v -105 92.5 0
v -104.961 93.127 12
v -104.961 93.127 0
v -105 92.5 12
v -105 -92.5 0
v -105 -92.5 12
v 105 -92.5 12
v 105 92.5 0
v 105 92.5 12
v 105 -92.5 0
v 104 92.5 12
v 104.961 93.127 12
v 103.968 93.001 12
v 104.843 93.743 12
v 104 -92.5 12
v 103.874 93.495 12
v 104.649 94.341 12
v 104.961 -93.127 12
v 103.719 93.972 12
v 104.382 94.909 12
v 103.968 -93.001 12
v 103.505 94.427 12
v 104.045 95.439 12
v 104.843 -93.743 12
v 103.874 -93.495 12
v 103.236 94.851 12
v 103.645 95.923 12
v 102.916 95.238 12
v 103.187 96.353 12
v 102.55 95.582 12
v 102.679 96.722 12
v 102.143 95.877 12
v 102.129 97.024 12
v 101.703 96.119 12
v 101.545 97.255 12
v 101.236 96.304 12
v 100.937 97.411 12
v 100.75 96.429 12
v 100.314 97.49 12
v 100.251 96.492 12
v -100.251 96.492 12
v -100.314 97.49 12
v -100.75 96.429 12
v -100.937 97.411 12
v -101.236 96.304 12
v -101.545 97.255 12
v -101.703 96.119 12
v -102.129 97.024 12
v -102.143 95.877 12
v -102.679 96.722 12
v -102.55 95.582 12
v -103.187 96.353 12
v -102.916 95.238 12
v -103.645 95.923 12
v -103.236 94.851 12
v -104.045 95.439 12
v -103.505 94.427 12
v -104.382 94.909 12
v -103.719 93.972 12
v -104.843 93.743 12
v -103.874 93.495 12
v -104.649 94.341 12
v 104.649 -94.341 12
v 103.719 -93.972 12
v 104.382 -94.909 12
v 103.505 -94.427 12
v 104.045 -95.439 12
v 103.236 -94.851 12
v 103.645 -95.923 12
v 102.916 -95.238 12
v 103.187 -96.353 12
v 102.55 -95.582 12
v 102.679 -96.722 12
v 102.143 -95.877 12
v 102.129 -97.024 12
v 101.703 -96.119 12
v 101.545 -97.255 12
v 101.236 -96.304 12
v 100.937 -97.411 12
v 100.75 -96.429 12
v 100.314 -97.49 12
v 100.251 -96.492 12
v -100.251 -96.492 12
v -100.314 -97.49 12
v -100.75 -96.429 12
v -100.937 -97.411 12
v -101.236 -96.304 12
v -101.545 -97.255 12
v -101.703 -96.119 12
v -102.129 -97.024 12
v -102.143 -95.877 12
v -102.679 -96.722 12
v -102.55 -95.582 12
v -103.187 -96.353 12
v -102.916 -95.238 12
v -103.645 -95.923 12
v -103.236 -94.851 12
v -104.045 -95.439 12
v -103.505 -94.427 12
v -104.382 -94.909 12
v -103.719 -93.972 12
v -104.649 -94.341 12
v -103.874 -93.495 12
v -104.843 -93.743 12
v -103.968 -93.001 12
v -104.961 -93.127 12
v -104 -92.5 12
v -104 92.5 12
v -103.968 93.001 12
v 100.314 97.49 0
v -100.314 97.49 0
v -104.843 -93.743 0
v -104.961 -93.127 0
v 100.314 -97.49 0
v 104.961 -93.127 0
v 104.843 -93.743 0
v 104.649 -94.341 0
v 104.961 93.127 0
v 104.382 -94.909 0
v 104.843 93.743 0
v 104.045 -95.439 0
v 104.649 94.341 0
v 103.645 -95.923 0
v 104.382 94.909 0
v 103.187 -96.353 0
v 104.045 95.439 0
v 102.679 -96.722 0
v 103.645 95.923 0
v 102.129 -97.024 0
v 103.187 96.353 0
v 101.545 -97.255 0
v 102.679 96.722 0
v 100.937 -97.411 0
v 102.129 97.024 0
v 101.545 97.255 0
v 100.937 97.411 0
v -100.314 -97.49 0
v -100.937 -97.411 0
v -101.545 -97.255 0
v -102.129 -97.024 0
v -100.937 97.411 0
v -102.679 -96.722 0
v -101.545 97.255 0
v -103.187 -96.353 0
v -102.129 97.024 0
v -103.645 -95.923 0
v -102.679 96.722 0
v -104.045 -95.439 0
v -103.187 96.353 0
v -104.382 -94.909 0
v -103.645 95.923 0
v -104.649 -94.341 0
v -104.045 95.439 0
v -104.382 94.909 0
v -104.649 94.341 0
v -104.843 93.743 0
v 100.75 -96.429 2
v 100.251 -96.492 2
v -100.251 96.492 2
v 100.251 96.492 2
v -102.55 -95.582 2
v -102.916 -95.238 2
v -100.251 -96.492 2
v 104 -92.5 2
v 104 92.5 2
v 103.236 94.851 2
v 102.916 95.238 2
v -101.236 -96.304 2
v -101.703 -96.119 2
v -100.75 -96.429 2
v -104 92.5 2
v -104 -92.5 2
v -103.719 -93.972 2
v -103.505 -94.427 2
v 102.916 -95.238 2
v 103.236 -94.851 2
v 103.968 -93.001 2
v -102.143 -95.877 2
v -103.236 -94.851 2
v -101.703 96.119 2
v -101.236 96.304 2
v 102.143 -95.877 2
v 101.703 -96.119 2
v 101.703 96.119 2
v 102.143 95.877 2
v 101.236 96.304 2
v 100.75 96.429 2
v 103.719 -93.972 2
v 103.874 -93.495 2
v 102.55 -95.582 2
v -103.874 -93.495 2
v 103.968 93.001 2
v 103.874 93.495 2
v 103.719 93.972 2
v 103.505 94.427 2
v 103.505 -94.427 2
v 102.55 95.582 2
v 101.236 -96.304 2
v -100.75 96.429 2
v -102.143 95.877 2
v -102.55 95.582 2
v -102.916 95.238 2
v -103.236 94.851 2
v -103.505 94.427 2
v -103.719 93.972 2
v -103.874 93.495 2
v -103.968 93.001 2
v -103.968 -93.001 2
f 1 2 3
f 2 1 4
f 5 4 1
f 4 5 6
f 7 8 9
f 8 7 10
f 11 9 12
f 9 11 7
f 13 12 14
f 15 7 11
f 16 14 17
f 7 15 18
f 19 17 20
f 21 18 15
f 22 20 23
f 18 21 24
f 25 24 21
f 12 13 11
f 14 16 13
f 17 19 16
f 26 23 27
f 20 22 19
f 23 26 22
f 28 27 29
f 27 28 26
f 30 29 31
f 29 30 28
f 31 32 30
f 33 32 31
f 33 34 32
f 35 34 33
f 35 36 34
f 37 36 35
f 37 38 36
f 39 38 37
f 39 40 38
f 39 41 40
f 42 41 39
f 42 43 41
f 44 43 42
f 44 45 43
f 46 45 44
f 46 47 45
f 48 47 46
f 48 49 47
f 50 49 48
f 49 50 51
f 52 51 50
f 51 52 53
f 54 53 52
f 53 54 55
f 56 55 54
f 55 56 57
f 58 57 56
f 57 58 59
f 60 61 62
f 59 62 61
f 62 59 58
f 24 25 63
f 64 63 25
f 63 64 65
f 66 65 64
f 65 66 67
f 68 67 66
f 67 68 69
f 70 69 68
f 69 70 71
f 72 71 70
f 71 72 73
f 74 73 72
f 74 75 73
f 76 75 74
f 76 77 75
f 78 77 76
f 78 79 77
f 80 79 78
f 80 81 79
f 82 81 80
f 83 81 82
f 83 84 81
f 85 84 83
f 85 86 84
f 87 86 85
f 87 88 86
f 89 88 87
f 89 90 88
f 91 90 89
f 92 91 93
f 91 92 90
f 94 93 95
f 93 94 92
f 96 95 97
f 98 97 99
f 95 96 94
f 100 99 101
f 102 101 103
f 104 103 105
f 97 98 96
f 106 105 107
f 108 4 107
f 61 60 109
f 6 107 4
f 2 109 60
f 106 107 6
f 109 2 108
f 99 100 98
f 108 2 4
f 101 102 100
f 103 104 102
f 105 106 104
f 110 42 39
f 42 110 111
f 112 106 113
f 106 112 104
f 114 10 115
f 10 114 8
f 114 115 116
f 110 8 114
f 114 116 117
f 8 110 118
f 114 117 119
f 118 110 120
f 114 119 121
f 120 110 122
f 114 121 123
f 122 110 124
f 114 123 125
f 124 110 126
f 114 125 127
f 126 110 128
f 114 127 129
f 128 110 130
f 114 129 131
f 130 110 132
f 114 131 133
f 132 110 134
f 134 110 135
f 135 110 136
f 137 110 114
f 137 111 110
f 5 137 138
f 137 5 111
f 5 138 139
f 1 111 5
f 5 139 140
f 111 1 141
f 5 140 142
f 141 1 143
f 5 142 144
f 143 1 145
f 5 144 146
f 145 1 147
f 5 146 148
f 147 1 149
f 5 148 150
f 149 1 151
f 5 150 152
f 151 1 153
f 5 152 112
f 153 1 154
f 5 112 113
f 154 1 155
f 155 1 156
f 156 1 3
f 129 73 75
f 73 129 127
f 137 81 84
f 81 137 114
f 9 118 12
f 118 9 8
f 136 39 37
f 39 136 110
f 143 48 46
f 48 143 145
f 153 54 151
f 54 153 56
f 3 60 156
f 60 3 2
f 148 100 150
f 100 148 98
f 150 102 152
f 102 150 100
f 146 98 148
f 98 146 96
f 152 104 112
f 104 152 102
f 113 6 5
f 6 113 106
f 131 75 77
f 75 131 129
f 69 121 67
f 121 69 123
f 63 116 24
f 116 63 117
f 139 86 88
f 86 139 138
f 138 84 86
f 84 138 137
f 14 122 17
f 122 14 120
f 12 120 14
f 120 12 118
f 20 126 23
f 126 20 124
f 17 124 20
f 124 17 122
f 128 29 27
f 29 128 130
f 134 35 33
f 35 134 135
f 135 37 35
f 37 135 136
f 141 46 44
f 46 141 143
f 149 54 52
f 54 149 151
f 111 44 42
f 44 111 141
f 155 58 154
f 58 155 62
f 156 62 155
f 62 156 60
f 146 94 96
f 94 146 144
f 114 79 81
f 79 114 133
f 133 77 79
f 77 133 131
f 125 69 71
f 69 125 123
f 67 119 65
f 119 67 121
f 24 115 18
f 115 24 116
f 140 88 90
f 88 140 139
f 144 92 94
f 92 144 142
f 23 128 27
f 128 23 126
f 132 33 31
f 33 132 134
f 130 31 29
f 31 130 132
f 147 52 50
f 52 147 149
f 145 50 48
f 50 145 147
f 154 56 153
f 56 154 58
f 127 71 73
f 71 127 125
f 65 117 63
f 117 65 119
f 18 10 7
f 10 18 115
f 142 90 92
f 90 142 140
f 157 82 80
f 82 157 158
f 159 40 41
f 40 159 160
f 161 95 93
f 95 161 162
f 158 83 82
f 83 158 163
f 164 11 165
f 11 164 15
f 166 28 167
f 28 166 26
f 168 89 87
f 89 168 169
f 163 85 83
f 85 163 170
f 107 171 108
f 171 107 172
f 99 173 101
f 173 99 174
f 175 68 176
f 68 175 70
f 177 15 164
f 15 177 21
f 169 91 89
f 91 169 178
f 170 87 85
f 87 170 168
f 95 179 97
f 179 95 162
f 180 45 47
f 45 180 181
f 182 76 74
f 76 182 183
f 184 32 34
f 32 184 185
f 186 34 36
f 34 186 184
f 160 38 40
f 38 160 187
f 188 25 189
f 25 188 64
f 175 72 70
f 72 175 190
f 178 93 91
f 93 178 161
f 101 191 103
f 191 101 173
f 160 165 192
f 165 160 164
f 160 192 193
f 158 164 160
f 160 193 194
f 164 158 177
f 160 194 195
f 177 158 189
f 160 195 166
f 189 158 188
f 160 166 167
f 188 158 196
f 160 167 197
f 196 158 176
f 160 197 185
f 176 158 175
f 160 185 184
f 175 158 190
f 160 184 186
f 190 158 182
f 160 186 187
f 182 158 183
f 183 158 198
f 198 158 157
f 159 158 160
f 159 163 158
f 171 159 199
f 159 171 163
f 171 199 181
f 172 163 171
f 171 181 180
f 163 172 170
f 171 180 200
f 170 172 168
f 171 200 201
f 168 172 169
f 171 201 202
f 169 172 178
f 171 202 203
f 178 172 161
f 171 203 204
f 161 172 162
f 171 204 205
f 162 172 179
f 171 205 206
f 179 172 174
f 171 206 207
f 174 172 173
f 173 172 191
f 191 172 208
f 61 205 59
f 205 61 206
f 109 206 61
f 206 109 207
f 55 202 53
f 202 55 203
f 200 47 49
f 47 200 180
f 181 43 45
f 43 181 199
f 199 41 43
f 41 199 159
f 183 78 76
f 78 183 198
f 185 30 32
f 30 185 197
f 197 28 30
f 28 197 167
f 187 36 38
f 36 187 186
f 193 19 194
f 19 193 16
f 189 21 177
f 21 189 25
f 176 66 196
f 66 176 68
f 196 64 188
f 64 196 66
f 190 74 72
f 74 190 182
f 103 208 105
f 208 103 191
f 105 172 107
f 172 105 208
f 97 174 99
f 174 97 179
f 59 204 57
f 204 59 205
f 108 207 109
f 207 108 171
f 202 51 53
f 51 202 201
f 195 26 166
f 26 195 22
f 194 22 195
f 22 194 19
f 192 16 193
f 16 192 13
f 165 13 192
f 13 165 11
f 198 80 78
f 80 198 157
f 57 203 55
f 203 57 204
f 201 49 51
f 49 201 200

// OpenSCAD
$fn = 50;


difference() {
	union() {
		hull() {
			translate(v = [-100.0000000000, 92.5000000000, 0]) {
				cylinder(h = 12, r = 5);
			}
			translate(v = [100.0000000000, 92.5000000000, 0]) {
				cylinder(h = 12, r = 5);
			}
			translate(v = [-100.0000000000, -92.5000000000, 0]) {
				cylinder(h = 12, r = 5);
			}
			translate(v = [100.0000000000, -92.5000000000, 0]) {
				cylinder(h = 12, r = 5);
			}
		}
	}
	union() {
		translate(v = [0, 0, 2]) {
			hull() {
				translate(v = [-100.0000000000, 92.5000000000, 0]) {
					cylinder(h = 10, r = 4);
				}
				translate(v = [100.0000000000, 92.5000000000, 0]) {
					cylinder(h = 10, r = 4);
				}
				translate(v = [-100.0000000000, -92.5000000000, 0]) {
					cylinder(h = 10, r = 4);
				}
				translate(v = [100.0000000000, -92.5000000000, 0]) {
					cylinder(h = 10, r = 4);
				}
			}
		}
	}
}
